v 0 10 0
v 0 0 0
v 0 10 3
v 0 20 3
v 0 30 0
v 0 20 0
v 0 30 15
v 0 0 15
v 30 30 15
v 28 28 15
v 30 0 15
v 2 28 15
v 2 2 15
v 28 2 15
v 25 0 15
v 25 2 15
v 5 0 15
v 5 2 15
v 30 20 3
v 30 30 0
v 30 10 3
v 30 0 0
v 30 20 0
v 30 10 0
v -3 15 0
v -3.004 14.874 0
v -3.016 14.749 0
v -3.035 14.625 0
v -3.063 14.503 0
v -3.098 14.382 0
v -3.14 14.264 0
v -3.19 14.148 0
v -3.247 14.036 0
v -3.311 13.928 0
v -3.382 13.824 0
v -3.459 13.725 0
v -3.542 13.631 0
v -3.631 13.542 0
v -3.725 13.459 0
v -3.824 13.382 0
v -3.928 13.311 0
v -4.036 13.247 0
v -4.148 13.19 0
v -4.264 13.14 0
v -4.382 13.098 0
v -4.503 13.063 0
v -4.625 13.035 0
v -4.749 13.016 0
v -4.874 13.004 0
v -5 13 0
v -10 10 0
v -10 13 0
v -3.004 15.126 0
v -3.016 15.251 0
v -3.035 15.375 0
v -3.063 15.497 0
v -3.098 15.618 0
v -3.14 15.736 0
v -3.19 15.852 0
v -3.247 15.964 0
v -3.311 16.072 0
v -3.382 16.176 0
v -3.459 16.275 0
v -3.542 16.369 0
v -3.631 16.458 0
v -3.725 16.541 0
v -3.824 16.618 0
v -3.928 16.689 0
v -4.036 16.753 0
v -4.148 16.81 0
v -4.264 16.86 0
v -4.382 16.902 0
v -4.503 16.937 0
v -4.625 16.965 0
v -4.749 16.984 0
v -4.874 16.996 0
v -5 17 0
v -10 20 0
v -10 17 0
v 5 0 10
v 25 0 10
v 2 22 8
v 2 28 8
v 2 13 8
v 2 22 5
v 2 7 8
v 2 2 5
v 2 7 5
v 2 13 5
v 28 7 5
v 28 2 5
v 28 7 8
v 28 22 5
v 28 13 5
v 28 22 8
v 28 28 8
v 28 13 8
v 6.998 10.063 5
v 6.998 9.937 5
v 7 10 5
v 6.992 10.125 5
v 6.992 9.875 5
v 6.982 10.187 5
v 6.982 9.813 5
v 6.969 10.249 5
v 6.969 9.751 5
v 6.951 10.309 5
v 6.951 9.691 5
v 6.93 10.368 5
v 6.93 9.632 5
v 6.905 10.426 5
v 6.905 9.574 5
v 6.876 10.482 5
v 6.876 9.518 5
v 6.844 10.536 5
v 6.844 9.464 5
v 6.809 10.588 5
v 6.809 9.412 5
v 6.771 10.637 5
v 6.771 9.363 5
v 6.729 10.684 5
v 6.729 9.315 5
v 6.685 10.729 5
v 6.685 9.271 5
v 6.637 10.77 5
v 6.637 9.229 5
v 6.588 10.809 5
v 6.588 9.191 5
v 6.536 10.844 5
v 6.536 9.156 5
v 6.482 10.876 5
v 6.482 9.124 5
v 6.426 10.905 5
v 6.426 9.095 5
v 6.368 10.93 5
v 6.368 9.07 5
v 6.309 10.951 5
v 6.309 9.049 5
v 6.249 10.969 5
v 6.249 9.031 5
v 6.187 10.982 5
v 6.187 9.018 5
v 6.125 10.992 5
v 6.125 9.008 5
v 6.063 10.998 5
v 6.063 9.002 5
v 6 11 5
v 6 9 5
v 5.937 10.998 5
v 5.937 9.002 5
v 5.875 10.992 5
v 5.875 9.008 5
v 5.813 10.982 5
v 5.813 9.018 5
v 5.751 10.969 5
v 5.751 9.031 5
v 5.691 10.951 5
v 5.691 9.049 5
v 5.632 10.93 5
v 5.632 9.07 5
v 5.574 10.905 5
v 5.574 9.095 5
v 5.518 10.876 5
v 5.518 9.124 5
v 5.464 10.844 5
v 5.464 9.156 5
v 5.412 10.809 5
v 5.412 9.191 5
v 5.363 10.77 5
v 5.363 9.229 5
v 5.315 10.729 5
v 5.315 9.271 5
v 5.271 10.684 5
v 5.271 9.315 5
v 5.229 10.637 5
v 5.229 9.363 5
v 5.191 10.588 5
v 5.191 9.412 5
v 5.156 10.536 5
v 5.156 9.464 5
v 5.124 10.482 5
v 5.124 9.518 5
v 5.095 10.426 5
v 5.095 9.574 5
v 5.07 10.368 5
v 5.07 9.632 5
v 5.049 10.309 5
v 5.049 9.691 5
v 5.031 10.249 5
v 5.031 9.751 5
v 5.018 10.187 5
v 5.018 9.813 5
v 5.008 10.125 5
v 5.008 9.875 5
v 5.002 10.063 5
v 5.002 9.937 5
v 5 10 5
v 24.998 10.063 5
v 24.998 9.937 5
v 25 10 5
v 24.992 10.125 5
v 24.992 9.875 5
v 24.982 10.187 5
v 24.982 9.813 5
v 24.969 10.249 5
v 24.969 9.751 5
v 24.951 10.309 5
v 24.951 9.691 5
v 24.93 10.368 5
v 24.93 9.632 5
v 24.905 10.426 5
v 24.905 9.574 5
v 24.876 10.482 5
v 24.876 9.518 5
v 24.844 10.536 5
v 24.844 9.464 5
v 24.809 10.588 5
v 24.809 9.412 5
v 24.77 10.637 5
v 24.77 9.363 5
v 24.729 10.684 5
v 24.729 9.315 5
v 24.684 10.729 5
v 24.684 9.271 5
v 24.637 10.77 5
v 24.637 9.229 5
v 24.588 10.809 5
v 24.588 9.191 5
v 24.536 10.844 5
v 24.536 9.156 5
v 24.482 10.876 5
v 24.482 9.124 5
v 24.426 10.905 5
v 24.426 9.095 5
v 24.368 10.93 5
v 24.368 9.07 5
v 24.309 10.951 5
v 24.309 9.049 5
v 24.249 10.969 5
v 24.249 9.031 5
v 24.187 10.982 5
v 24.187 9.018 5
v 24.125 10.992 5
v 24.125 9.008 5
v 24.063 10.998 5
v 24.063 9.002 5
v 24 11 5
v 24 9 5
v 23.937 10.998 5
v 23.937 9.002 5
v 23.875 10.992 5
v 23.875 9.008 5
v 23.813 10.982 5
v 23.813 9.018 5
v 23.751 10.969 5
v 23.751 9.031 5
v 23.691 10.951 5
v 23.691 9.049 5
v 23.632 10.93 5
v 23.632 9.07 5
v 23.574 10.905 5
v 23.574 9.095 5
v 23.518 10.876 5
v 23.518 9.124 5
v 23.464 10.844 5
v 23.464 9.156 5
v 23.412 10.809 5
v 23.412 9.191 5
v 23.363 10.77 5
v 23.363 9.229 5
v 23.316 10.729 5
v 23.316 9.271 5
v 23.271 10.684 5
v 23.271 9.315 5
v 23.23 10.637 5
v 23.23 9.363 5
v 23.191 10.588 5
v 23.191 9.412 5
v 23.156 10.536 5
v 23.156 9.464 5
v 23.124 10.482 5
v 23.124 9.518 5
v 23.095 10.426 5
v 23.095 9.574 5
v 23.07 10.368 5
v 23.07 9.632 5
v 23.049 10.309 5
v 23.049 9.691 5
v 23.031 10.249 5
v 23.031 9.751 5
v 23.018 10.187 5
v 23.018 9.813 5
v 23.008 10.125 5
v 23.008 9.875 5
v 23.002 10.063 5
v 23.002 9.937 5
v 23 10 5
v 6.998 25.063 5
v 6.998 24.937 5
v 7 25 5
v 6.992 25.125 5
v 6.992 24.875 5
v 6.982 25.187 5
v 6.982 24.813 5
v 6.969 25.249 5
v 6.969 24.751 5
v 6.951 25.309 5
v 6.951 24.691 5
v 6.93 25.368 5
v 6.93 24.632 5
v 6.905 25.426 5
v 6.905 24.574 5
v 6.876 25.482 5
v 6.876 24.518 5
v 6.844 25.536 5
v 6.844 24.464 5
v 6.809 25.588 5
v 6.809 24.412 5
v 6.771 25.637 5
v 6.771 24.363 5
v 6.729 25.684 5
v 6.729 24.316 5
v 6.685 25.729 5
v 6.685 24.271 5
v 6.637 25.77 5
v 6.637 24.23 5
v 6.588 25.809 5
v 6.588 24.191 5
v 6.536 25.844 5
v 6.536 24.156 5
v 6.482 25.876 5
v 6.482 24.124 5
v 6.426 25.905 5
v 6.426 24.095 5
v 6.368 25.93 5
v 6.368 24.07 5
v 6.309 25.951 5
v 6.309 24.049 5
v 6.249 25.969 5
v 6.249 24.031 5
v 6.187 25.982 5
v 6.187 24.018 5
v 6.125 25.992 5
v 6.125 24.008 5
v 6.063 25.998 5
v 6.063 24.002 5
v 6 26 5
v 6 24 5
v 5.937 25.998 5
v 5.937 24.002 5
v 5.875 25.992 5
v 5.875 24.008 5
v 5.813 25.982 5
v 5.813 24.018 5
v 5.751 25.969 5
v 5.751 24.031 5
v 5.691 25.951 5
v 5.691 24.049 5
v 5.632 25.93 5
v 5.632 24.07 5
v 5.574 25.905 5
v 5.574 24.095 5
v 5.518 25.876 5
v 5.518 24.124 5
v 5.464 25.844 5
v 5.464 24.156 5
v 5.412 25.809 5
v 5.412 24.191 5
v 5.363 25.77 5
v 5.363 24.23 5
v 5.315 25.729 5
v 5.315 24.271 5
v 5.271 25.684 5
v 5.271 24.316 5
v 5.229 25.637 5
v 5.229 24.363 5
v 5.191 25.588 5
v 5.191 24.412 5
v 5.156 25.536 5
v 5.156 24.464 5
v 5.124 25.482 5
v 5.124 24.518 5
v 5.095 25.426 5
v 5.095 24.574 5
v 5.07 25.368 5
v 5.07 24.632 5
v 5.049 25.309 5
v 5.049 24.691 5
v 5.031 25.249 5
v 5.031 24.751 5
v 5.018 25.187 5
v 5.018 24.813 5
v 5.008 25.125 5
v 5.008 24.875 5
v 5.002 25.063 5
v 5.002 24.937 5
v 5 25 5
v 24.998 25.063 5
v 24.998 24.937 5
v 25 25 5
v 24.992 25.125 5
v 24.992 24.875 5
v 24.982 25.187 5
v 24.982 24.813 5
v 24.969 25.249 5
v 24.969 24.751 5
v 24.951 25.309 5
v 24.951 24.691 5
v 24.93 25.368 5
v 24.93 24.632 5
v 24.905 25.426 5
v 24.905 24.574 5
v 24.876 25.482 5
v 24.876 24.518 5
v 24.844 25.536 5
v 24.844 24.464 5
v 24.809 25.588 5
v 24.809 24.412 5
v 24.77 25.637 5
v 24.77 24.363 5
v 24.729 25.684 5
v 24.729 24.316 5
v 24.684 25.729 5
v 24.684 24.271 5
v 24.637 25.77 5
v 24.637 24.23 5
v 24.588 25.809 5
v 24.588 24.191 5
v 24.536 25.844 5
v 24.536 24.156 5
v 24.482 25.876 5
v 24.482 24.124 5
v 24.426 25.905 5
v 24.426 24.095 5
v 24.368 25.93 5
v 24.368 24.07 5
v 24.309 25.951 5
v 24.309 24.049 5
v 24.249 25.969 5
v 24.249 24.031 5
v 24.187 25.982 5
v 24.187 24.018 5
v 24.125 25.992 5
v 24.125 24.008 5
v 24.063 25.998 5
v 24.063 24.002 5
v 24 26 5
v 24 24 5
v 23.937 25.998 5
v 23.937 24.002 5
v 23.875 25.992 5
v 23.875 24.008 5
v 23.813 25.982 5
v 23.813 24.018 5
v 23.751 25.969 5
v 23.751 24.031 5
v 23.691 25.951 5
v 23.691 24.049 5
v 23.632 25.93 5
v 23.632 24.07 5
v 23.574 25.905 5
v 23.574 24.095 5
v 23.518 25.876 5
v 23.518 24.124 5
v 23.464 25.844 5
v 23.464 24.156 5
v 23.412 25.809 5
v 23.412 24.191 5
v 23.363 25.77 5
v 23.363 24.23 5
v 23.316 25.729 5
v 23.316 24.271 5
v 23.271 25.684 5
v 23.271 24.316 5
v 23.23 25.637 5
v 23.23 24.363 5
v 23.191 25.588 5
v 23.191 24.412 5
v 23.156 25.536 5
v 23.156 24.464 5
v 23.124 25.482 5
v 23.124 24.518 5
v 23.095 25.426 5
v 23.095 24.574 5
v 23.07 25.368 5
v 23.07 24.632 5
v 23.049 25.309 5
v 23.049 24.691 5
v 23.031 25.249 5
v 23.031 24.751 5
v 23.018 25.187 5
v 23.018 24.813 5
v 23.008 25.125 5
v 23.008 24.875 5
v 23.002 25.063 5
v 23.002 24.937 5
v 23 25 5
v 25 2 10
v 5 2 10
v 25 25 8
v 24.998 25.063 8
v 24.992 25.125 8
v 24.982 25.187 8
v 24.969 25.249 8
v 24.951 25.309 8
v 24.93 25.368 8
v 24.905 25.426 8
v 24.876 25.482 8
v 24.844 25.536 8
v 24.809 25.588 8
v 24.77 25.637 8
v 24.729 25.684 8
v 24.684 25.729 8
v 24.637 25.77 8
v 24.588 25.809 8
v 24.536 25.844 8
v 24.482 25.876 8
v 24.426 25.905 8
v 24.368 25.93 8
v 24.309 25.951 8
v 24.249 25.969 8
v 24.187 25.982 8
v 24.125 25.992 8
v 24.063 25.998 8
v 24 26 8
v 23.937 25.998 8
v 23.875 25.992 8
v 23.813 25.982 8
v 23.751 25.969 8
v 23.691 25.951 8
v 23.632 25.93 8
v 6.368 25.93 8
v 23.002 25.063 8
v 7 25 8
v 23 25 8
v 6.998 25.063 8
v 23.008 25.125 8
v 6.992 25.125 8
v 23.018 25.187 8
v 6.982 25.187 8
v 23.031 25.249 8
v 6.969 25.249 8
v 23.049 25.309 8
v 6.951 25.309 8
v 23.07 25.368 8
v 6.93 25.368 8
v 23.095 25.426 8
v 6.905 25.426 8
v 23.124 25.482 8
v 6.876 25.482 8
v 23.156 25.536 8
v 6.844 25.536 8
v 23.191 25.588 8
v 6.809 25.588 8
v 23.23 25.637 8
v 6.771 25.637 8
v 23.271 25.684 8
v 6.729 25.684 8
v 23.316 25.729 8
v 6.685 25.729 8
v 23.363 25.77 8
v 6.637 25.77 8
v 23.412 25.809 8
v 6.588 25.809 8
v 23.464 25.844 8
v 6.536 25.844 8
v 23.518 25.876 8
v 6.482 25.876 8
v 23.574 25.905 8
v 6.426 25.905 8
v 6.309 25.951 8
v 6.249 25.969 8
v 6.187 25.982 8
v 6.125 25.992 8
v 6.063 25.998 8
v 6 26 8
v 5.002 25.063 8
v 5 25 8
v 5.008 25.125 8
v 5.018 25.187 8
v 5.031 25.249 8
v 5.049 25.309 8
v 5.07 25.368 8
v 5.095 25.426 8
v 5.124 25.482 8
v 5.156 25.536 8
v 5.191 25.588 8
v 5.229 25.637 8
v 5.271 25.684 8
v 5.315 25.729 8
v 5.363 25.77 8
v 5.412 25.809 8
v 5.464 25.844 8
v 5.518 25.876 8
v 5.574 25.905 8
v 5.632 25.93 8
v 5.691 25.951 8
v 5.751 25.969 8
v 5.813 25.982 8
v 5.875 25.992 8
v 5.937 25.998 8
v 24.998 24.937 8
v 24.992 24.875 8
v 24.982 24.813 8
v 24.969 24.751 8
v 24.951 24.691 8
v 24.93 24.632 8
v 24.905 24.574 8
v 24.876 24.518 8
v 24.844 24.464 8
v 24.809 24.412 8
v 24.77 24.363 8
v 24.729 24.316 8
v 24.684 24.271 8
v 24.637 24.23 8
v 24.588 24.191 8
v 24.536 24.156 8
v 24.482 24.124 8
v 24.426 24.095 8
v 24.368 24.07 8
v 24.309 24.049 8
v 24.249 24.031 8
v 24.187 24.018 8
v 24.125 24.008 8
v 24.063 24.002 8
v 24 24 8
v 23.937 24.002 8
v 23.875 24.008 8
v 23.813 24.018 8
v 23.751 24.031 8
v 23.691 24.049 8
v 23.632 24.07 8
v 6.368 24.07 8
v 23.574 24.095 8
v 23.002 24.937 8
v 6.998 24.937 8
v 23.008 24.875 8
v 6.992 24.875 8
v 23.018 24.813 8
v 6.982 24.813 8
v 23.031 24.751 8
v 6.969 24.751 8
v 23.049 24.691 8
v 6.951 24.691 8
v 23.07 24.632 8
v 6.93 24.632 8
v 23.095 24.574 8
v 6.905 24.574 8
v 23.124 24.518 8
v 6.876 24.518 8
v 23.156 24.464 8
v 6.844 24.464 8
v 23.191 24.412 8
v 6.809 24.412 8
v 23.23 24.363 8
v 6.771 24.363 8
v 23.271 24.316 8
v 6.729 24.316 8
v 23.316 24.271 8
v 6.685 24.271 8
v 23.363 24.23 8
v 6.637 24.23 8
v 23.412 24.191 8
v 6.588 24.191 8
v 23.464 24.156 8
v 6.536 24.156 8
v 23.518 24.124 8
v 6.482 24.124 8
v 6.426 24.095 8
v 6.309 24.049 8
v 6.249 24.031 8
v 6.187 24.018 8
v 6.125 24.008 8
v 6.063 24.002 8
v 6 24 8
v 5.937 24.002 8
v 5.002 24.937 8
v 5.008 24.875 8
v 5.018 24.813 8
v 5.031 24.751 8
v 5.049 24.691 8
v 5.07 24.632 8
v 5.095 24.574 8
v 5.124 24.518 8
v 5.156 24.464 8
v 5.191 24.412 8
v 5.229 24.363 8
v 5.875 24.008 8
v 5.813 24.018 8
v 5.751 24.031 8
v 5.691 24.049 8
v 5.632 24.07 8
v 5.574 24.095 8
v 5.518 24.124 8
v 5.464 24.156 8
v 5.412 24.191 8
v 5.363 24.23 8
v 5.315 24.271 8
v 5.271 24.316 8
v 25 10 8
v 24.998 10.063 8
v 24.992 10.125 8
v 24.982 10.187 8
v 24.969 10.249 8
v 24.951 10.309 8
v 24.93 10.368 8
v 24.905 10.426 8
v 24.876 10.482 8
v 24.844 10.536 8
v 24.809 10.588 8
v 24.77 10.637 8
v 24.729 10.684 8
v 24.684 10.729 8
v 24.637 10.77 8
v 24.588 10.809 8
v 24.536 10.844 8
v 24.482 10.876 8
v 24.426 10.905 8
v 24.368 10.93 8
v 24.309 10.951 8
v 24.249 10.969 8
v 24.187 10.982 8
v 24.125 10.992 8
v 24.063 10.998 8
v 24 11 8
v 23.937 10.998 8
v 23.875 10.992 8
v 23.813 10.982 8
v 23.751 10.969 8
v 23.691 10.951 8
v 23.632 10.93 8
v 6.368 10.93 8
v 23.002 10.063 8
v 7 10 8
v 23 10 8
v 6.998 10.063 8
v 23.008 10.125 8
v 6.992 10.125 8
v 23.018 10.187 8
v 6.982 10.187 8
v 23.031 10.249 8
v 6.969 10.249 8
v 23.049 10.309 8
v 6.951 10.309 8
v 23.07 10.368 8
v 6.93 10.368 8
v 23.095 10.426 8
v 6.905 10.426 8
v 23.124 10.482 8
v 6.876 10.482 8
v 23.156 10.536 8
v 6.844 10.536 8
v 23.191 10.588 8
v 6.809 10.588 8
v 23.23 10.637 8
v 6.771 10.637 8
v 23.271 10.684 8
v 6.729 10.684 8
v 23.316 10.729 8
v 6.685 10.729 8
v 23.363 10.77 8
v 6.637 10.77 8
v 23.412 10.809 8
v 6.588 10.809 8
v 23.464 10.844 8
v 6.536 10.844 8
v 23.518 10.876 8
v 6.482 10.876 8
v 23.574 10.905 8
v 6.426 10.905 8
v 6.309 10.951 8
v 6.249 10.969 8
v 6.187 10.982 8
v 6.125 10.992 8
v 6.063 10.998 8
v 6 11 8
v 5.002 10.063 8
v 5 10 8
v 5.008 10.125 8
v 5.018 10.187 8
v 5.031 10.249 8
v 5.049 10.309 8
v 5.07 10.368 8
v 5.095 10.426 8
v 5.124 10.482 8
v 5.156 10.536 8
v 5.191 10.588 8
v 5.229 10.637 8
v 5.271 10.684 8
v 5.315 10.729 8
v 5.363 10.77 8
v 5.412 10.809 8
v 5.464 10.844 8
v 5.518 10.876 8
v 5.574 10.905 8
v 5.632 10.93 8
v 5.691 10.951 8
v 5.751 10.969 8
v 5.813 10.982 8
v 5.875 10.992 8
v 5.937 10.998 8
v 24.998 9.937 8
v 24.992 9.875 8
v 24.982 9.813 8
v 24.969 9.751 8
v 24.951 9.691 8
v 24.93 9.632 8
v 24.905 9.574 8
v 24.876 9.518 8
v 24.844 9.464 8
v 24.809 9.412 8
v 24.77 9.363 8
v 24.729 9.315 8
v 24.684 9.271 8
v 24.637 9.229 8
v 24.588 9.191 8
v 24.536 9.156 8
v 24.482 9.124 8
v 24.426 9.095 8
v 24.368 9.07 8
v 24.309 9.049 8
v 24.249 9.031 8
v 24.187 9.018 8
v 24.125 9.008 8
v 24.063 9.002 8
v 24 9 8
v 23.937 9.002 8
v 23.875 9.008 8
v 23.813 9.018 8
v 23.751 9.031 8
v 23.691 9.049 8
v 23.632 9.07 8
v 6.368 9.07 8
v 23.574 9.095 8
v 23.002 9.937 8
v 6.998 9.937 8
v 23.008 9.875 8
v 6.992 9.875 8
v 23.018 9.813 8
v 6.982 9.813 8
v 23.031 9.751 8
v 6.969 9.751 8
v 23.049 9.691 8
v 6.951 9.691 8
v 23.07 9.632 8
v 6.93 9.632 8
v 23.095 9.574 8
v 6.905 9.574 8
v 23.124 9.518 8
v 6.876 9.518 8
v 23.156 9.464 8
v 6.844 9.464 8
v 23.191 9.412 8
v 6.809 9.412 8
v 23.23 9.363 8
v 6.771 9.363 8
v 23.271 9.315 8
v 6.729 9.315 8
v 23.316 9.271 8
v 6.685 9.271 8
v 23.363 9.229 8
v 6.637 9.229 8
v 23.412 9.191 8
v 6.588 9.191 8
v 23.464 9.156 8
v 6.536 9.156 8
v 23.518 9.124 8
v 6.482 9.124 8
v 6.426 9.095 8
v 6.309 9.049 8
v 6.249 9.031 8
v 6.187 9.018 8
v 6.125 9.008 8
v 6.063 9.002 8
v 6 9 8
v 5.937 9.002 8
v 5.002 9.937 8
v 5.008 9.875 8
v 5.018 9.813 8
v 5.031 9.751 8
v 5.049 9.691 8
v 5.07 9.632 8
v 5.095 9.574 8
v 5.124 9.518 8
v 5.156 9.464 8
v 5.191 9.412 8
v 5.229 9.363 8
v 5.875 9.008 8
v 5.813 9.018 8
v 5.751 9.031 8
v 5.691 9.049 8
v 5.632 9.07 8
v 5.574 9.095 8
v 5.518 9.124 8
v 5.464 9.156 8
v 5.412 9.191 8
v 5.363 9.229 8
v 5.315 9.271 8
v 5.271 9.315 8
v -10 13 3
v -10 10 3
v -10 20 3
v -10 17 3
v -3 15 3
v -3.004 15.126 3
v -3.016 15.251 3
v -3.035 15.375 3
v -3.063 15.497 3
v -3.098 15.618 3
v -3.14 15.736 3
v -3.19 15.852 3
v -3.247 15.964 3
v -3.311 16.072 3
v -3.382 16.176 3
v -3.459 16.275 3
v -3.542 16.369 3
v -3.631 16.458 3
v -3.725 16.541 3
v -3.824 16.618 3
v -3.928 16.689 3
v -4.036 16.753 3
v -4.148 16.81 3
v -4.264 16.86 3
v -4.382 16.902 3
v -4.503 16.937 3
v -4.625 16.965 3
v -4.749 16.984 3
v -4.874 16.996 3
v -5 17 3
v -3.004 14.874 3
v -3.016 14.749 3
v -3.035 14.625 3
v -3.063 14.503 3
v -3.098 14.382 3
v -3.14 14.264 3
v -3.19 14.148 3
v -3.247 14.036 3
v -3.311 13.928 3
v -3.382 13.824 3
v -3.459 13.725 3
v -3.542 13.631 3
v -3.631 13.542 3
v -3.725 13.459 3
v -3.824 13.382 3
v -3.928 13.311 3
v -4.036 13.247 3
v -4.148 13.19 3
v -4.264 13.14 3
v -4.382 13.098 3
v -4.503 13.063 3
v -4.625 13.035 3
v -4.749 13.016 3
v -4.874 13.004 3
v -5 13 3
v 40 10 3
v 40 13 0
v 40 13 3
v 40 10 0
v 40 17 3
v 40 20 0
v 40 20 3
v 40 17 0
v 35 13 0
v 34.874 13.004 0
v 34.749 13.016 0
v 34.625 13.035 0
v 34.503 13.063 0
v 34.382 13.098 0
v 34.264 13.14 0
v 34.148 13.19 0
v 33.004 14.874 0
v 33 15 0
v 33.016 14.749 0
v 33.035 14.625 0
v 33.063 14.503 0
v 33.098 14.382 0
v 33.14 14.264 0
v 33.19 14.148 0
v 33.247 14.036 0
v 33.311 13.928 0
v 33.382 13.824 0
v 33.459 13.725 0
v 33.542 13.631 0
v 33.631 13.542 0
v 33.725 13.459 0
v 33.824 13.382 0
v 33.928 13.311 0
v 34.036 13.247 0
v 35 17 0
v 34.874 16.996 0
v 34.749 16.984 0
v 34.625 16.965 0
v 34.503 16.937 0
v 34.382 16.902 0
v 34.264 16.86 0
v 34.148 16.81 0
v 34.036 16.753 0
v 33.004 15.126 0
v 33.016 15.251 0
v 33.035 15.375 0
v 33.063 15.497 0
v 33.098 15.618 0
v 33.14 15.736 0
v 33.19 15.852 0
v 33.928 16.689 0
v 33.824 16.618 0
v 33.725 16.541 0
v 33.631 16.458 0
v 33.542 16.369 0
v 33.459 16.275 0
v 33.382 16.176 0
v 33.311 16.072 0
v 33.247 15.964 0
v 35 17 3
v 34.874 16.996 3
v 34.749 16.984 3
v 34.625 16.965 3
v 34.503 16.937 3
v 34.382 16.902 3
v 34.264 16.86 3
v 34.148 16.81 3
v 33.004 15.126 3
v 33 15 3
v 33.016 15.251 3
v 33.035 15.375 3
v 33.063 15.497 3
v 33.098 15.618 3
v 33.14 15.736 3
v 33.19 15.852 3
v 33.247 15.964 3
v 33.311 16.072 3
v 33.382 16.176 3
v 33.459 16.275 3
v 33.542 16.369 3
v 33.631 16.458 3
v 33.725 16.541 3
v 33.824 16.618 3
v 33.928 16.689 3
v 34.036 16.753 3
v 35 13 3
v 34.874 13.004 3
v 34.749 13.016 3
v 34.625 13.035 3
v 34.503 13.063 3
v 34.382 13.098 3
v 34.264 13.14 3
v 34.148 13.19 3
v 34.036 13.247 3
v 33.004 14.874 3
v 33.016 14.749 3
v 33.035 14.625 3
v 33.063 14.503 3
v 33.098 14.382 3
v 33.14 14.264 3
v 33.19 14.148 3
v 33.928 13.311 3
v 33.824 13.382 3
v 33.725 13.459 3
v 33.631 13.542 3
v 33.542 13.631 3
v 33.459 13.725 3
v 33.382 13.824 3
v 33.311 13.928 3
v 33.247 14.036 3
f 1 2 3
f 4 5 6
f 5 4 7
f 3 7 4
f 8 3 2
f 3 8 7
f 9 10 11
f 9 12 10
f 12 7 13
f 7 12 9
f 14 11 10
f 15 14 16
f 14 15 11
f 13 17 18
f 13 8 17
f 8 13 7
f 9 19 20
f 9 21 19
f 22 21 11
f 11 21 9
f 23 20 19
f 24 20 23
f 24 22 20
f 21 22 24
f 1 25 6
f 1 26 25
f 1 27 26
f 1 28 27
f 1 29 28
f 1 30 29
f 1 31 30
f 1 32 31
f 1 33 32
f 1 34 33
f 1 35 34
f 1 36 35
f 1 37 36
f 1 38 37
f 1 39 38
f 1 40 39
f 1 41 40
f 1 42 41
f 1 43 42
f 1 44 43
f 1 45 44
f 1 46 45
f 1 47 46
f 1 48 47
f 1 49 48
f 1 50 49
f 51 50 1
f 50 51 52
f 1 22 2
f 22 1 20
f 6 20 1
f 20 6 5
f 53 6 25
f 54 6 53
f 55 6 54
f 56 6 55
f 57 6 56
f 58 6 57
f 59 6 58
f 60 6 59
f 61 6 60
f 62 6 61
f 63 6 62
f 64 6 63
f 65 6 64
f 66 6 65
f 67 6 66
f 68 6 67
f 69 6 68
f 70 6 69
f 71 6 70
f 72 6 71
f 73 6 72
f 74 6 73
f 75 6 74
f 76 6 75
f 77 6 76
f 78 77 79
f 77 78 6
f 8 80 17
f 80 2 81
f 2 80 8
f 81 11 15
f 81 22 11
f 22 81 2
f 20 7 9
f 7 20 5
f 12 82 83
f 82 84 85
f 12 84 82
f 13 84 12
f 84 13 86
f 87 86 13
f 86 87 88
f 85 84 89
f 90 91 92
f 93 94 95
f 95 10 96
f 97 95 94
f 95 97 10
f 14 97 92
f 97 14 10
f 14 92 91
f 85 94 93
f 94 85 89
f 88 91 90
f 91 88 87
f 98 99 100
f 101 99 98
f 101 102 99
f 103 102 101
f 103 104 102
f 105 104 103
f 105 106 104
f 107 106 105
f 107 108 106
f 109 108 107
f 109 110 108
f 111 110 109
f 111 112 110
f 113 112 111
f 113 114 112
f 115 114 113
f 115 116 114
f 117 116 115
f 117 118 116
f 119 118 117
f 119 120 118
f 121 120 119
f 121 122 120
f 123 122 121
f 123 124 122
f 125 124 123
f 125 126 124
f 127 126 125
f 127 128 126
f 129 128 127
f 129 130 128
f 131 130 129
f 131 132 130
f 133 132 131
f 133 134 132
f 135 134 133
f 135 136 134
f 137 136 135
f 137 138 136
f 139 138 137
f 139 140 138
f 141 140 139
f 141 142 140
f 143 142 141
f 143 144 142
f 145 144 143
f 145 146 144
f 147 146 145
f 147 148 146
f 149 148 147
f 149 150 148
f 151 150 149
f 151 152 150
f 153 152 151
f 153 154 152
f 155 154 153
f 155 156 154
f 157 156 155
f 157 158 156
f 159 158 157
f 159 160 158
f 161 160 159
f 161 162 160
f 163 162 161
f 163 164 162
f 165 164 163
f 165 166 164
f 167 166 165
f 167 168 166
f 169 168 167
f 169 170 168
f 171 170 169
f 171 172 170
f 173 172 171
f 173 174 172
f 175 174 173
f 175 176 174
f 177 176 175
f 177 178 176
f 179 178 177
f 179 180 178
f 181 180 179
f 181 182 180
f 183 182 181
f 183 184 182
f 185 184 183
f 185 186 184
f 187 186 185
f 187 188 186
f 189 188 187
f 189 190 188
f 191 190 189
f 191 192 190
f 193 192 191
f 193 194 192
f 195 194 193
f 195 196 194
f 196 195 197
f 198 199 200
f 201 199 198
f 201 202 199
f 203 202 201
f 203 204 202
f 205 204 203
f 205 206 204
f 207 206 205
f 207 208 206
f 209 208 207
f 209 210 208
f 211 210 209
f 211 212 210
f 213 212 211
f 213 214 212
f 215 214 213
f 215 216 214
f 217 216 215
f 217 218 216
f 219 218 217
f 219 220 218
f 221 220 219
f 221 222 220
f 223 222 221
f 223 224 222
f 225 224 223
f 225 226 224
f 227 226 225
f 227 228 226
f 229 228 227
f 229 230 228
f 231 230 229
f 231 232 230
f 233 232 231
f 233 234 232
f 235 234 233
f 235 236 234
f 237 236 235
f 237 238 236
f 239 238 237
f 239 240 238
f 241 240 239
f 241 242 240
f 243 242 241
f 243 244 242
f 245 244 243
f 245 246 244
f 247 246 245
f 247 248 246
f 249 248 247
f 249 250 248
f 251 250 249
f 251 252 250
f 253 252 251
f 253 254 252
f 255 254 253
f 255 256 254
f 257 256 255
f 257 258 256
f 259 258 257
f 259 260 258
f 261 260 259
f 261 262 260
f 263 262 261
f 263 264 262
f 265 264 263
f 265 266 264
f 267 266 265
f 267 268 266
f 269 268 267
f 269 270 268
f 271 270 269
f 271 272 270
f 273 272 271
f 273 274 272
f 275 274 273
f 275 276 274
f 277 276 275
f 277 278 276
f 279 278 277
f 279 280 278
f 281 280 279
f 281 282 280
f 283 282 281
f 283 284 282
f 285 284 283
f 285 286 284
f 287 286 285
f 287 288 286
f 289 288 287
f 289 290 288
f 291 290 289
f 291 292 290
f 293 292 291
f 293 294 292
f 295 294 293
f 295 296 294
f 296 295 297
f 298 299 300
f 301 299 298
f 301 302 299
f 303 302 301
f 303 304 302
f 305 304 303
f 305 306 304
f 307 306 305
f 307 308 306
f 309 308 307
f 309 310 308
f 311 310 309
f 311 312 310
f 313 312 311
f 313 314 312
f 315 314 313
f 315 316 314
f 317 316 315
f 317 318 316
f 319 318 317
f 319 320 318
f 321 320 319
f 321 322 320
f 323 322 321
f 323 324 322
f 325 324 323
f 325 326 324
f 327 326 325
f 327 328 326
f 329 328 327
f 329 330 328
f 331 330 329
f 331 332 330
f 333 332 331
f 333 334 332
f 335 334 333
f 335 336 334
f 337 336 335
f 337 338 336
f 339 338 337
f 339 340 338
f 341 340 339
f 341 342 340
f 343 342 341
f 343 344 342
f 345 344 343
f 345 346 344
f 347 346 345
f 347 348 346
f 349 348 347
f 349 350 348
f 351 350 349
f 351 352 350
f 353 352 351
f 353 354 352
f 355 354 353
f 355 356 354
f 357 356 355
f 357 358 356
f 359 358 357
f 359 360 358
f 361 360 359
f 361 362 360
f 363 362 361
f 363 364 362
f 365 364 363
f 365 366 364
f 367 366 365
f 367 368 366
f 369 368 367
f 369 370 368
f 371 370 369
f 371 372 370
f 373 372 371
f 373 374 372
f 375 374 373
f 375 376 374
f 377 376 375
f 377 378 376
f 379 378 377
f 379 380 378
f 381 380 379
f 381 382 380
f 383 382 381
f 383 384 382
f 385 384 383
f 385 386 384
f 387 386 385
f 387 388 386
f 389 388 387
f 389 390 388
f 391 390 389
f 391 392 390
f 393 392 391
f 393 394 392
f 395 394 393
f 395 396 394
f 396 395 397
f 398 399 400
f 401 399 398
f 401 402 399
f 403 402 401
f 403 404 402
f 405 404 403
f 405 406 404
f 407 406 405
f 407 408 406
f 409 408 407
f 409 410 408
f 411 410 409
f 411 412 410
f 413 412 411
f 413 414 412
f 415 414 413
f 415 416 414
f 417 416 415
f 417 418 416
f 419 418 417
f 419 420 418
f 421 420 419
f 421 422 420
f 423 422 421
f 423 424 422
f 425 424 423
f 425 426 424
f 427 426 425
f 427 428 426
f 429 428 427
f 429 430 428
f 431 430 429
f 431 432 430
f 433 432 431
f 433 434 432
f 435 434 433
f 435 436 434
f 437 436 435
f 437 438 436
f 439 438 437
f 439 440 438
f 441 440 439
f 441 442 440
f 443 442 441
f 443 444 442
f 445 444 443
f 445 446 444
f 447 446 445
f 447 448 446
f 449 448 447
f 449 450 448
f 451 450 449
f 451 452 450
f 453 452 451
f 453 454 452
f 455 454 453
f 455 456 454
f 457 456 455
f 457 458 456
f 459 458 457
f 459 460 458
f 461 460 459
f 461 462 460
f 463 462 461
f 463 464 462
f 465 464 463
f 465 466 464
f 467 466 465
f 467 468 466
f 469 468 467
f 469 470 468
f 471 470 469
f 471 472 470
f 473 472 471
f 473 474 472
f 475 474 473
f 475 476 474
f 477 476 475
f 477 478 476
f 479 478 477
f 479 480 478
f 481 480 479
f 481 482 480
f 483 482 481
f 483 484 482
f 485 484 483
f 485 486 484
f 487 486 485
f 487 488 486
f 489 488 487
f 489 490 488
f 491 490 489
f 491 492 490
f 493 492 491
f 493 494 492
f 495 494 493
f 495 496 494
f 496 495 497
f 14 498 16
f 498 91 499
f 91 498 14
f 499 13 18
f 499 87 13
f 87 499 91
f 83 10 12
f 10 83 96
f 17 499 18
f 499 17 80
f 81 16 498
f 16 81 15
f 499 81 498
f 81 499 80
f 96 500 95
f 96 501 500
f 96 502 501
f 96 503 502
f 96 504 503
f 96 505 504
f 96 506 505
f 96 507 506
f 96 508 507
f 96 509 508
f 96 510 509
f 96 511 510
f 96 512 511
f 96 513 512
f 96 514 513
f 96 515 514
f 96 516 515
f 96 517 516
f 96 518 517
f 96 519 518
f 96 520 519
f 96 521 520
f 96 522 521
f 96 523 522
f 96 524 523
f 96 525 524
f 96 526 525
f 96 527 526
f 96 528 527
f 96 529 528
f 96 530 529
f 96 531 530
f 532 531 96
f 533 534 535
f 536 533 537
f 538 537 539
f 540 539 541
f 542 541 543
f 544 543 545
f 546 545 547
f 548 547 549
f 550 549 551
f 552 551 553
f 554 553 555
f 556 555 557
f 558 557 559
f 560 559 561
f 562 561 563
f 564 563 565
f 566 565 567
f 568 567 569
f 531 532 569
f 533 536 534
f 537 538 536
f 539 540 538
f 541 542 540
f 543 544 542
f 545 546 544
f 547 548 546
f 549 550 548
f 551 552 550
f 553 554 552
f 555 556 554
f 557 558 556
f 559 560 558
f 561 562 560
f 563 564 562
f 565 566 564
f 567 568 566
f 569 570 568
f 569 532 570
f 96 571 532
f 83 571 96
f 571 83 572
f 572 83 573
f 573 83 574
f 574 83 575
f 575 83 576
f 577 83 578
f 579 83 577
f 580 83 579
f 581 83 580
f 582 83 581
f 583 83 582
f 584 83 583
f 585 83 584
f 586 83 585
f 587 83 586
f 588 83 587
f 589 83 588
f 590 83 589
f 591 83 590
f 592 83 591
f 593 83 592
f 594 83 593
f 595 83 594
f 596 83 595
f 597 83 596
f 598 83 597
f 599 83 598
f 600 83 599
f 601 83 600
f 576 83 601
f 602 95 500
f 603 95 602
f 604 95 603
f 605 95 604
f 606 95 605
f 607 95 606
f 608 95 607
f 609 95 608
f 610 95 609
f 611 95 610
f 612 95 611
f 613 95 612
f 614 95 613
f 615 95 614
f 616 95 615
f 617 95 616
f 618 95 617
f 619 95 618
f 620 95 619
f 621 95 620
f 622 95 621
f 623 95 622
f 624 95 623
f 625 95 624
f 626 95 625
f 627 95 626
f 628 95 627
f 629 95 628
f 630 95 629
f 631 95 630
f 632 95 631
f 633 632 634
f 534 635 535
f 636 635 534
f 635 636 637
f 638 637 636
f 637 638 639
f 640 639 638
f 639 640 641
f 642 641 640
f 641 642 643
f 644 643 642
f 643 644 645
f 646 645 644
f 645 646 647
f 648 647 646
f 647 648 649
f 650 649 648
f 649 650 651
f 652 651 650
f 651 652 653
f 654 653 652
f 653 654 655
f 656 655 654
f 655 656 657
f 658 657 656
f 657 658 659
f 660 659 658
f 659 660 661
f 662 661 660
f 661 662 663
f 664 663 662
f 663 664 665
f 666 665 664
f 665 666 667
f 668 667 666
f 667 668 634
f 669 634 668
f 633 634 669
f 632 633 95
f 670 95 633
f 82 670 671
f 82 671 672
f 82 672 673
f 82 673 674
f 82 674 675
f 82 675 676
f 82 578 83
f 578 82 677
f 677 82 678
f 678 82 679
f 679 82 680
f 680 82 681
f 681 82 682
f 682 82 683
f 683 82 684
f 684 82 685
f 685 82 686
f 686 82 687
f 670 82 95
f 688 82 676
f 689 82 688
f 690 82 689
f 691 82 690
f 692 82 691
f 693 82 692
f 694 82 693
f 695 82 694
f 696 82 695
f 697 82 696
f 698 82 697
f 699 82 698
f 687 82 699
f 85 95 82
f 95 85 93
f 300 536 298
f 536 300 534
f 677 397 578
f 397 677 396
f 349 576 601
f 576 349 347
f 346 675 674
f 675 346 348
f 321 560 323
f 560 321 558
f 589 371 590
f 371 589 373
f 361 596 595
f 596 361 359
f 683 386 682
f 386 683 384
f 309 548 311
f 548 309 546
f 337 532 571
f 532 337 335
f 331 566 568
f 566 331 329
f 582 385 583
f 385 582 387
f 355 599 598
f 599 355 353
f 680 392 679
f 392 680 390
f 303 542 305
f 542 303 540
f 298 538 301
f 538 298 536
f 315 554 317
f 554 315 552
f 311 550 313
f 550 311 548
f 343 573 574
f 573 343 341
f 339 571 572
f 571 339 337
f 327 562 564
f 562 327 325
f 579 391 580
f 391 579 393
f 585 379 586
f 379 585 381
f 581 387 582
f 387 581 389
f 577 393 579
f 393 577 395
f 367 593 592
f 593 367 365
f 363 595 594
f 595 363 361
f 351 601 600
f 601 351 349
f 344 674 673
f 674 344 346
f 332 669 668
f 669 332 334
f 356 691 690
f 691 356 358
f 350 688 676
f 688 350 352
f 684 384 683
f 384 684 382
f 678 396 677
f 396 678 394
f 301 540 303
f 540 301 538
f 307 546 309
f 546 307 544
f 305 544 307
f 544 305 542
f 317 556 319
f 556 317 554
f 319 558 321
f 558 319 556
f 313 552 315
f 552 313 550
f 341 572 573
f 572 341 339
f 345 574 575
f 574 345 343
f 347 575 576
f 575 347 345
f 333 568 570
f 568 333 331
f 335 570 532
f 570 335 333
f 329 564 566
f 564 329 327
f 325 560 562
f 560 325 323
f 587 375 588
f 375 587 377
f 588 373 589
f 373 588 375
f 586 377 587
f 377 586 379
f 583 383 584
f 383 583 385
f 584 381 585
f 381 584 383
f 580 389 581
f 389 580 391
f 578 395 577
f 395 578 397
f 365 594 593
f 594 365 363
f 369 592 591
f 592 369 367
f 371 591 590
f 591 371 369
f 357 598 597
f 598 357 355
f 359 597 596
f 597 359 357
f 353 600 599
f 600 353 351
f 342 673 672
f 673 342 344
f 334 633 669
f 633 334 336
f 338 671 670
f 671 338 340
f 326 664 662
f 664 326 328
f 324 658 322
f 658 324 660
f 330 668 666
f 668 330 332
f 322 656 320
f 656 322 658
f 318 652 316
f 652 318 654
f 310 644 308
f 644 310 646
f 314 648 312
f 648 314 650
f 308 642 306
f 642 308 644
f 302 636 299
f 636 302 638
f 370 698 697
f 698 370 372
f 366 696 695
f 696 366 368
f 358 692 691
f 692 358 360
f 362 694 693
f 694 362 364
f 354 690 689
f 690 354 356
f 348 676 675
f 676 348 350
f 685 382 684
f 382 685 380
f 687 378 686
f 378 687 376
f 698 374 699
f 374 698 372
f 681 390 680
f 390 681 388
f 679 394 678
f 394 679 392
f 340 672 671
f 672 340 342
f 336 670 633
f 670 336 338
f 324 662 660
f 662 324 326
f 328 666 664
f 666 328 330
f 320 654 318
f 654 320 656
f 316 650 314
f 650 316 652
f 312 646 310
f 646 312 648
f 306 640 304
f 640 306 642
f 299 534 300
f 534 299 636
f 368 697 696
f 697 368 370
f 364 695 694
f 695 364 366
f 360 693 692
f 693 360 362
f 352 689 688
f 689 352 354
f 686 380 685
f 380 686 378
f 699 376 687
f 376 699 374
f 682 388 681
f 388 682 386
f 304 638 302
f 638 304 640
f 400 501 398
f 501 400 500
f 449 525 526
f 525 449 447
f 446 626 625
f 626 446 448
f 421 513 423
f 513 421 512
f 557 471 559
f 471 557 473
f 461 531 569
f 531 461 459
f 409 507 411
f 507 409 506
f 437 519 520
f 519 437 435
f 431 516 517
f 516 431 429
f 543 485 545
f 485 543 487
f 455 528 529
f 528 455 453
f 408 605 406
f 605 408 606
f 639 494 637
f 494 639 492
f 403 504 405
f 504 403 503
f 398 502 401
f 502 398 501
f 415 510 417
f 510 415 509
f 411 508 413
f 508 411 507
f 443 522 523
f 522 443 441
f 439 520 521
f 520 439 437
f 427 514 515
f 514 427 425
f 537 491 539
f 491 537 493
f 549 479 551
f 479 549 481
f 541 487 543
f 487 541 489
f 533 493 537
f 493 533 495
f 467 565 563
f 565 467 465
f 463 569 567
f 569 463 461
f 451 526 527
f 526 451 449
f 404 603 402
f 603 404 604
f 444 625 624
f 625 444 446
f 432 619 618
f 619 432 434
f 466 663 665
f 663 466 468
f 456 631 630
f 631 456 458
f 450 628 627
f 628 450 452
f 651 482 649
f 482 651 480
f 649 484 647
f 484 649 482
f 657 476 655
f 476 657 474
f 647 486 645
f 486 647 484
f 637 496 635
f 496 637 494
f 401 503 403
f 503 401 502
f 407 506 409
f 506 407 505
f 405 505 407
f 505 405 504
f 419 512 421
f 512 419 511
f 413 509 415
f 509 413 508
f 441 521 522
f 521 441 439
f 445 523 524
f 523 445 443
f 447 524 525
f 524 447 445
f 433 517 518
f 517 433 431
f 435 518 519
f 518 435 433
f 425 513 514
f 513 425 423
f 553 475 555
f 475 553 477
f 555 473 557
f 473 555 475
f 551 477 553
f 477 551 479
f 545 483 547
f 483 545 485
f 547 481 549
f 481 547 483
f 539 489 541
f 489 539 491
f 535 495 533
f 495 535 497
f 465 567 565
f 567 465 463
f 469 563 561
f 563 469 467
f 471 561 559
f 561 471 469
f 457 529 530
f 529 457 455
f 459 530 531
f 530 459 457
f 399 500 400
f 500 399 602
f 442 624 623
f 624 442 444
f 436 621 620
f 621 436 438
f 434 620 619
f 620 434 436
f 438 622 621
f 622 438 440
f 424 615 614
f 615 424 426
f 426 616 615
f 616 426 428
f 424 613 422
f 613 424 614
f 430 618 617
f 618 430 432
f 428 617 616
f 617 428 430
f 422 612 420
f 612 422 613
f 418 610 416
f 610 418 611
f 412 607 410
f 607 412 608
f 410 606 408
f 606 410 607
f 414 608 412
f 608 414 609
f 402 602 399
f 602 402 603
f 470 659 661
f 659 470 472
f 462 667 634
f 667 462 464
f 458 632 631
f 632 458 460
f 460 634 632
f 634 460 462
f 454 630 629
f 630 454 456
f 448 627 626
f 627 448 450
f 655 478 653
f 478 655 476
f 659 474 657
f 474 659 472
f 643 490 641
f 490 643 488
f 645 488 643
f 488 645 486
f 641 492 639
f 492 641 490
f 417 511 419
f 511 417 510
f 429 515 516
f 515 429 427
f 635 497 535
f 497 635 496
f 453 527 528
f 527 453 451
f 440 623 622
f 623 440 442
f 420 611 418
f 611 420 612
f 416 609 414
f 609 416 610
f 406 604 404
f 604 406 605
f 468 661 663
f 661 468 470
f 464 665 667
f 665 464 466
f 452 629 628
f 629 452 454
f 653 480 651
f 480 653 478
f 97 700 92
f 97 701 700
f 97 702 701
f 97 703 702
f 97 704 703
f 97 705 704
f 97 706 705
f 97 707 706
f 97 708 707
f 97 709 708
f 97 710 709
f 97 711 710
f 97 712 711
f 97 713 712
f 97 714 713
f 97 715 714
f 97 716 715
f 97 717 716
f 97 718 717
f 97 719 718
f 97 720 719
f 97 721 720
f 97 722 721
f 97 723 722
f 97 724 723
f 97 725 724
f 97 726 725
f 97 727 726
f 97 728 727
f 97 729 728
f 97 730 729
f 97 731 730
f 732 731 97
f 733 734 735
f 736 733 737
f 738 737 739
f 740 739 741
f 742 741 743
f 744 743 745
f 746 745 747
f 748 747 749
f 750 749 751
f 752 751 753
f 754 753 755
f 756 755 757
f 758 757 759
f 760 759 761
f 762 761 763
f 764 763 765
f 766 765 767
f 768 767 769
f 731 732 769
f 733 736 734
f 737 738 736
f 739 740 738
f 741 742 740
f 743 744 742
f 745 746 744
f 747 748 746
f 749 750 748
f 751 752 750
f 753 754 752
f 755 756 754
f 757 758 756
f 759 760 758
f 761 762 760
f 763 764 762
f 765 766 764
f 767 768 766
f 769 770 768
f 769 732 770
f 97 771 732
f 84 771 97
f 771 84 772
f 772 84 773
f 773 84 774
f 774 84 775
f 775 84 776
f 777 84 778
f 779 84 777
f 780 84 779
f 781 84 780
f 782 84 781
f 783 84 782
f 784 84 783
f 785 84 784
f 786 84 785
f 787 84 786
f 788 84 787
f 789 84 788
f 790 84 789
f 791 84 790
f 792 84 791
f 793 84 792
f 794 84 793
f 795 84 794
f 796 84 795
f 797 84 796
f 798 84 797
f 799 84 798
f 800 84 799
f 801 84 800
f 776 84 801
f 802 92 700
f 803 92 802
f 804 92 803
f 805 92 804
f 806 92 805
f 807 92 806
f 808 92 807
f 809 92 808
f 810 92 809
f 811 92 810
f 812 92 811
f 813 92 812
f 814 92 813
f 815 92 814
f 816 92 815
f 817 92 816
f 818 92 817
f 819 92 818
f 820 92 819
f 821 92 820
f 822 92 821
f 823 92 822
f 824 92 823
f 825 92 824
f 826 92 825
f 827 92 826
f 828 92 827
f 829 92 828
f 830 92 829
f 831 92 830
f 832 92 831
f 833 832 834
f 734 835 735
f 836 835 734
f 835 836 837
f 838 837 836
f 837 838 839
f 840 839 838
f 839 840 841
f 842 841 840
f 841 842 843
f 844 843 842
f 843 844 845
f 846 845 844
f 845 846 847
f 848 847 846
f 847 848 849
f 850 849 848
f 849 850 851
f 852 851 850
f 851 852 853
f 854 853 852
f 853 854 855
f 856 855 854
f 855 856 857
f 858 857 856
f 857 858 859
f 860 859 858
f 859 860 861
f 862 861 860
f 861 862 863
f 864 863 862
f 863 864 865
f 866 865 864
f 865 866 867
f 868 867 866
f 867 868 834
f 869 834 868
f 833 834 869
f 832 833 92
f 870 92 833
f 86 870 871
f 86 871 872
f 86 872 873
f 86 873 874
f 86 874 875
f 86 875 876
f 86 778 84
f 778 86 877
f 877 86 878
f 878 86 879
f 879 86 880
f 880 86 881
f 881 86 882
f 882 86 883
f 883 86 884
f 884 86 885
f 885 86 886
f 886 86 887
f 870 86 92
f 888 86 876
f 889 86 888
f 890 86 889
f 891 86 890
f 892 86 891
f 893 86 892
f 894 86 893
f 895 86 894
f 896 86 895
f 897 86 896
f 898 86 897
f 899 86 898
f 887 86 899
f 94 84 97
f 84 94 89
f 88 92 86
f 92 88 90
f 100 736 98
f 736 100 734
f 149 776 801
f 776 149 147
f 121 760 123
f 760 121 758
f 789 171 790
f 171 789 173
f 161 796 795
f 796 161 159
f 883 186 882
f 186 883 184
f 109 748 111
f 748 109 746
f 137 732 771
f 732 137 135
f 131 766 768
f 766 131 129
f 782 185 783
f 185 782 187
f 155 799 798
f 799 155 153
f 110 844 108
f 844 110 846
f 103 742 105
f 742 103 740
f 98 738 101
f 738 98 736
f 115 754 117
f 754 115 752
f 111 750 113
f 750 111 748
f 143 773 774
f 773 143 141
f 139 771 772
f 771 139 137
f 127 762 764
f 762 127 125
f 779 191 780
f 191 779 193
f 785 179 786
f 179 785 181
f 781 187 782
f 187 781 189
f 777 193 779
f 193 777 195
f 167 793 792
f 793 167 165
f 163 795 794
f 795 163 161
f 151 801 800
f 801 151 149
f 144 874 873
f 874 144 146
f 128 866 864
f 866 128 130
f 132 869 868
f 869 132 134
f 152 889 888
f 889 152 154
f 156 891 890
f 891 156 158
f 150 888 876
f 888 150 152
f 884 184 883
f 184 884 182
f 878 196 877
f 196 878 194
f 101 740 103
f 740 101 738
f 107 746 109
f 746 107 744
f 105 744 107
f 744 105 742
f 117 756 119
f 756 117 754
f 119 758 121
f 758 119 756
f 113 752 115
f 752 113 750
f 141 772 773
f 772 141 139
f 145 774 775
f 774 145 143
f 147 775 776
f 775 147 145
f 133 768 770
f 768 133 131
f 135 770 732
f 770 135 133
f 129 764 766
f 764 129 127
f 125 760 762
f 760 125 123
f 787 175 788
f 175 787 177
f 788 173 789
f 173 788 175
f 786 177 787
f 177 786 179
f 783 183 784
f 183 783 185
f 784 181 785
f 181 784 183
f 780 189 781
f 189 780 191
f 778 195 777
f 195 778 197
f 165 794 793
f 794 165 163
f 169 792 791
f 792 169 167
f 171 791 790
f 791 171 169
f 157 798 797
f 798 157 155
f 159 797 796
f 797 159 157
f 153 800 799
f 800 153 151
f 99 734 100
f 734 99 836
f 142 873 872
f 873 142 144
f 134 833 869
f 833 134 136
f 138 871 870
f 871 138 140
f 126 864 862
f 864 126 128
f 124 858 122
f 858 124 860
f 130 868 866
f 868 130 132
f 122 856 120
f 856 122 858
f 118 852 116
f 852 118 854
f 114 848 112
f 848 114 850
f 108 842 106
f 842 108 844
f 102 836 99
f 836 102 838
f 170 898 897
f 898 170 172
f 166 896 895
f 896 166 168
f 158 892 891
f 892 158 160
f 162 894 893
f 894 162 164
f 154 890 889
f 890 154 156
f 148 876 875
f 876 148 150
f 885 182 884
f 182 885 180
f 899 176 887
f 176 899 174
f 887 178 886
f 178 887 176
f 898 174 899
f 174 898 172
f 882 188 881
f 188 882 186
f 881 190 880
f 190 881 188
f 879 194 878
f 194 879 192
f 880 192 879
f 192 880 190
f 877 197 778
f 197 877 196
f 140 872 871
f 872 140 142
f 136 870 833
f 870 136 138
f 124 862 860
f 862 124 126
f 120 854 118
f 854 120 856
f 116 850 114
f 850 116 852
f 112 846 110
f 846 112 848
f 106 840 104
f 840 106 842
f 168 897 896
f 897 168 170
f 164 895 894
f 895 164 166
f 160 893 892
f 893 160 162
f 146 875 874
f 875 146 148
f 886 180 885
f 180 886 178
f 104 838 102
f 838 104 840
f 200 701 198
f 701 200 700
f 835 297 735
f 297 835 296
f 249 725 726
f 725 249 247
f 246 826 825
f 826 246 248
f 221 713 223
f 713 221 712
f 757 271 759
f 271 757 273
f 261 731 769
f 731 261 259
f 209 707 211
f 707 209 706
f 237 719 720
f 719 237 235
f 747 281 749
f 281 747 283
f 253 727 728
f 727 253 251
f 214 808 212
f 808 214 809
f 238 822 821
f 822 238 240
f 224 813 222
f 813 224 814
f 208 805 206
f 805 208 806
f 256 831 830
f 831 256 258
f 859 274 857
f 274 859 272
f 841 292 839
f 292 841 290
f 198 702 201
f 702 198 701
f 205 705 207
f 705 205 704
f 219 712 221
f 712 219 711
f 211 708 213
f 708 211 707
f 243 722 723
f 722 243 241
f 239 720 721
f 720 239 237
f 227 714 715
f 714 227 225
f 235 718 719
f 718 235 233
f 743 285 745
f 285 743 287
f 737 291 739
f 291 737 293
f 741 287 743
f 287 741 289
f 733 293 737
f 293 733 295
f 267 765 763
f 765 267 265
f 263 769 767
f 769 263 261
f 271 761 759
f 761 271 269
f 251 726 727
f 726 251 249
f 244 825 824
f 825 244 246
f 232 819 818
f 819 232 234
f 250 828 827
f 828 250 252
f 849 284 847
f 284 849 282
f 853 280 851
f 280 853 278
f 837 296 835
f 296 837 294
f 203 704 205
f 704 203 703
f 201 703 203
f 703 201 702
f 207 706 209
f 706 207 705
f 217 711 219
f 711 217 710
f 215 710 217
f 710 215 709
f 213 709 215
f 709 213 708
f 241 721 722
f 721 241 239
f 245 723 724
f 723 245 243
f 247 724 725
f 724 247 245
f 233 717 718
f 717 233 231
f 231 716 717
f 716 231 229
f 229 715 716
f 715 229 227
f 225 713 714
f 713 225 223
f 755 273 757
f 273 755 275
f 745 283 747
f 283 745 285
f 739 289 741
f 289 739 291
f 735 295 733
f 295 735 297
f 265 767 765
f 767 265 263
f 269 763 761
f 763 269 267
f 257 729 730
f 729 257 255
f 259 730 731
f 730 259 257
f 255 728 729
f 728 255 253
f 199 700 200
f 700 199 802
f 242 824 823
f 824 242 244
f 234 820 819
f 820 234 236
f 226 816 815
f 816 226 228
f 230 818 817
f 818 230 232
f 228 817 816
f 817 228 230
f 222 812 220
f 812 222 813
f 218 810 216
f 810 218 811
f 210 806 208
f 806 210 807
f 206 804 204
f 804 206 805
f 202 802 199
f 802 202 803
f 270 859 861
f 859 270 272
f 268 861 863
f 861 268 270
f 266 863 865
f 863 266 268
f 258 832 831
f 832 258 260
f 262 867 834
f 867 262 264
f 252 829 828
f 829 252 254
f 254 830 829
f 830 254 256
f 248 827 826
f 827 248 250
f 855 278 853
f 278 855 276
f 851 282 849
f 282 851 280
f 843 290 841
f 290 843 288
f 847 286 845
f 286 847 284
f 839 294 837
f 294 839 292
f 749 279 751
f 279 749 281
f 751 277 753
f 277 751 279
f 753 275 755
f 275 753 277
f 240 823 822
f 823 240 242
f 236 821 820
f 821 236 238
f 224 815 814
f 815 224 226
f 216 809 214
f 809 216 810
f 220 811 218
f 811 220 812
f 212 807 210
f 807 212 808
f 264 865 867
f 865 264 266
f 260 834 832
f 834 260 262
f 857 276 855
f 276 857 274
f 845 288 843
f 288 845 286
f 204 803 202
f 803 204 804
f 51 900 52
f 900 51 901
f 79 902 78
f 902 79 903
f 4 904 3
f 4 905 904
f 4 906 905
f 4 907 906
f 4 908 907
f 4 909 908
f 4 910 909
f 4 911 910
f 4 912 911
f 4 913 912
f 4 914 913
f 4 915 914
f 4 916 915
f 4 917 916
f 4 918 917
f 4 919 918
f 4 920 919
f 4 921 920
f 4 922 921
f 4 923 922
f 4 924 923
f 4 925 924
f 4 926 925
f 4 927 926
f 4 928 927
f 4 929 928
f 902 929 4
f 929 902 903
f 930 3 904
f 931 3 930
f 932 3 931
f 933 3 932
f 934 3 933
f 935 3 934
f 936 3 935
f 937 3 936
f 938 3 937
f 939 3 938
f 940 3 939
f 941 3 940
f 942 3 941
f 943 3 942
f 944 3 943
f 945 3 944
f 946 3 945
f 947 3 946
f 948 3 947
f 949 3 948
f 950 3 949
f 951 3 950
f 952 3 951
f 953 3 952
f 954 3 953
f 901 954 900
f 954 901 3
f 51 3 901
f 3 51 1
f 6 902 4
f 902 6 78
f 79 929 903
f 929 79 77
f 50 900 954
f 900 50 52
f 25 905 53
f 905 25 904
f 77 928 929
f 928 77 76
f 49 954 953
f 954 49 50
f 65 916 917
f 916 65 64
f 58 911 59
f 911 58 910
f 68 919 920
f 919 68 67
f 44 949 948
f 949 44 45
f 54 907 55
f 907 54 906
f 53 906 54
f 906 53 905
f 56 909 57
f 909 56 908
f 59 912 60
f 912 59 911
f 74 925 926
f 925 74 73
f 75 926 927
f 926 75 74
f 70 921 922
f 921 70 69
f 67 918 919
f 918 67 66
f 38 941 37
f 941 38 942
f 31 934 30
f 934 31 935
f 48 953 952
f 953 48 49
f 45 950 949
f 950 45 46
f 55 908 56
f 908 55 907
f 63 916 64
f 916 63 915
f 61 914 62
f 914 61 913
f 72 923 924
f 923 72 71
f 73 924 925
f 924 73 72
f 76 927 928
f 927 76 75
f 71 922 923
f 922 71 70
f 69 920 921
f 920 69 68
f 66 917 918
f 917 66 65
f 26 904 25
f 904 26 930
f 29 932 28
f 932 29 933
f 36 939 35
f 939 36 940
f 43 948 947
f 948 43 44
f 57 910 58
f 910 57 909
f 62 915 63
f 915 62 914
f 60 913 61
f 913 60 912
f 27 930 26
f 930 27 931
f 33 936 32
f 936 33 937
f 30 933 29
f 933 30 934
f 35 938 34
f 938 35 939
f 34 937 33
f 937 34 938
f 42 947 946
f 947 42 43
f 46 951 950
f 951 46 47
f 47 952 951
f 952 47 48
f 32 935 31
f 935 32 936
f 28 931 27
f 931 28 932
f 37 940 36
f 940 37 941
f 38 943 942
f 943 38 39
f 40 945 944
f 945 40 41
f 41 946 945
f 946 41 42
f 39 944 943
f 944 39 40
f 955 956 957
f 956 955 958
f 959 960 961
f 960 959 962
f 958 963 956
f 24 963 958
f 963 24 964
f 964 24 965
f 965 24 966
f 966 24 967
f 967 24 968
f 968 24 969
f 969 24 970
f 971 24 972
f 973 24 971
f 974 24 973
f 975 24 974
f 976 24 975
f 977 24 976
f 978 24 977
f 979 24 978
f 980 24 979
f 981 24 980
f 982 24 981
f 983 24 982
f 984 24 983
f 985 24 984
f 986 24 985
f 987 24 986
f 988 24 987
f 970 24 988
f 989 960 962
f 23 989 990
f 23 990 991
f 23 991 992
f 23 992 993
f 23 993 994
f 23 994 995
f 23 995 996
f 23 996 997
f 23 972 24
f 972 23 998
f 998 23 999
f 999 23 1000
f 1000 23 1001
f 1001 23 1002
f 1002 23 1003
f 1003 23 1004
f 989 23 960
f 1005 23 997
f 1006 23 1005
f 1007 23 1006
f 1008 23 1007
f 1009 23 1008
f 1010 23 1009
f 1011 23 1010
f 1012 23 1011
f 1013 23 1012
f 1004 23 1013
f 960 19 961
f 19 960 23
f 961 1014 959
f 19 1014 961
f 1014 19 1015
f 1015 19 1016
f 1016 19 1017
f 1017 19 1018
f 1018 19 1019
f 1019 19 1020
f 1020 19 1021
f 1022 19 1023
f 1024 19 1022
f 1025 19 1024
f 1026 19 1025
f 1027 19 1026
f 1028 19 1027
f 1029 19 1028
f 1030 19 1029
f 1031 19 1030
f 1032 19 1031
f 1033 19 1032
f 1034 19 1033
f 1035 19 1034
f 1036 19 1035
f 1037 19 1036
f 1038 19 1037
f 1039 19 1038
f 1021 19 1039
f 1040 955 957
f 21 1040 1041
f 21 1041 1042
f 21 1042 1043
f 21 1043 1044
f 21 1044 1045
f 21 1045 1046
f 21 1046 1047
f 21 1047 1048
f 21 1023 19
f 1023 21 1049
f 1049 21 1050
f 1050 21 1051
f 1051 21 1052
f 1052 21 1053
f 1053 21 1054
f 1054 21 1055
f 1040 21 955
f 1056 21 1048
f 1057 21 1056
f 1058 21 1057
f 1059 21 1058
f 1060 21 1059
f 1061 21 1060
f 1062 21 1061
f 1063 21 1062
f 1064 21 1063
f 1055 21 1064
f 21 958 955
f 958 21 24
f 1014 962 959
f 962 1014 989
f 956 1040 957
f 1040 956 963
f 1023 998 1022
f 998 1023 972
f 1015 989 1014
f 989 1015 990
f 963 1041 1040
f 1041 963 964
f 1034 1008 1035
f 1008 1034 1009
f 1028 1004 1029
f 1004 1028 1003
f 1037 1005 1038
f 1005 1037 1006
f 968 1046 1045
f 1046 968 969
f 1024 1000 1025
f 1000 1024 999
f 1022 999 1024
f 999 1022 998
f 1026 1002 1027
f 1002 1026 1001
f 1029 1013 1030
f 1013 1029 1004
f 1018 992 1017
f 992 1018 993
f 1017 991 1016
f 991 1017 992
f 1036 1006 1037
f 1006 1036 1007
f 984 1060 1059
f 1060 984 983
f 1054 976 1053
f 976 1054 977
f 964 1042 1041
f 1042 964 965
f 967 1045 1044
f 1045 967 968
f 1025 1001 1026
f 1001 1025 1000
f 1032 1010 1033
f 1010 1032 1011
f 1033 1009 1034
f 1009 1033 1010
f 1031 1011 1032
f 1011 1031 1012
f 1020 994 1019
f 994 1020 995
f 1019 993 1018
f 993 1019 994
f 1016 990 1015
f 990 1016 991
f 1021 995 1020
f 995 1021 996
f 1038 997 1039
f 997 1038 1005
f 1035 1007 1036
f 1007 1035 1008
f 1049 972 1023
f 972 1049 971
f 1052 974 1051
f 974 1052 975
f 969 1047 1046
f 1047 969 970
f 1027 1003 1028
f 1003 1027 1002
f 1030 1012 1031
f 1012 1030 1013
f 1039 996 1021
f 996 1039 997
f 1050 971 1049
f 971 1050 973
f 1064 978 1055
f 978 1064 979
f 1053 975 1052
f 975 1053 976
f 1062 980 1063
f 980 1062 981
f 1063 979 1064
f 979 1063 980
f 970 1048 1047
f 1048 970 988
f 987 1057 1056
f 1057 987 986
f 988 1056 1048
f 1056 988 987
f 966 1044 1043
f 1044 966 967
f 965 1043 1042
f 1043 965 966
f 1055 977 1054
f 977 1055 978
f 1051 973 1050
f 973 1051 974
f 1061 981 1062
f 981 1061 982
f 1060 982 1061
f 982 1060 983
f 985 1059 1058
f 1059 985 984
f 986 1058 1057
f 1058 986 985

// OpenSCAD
$fn = 100;
// maten
//
// 25 * 25 mm
// 
union() {
    case();
    pw(-10,10,0);
    rotate([0,180,0]) {
        pw(-40,10,-3);
    }
}
module case() {
    union() {    
        difference () {
            cube([30,30,15]);
            translate([2,2,5]) { 
                cube([26,26,18]);
            }
            translate([5,-1,10]) {
                cube([20,4,15]);
            }
        }
        difference () {
            translate([2,22,5]) {
                cube ([26,6,3]);
            }
            translate([6,25,5]) {
                cylinder(r=1,h=10, center=false);
            }
            translate([24,25,5]) {
                cylinder(r=1,h=10, center=false);
            }
        }
        difference(){
            translate([2,7,5]) {
                cube ([26,6,3]);
            }
            translate([6,10,5]) {
                cylinder(r=1,h=10, center=false);
            }
            translate([24,10,5]) {
                cylinder(r=1,h=10, center=false);
            }   
        }
    }
}
module pw (x,y,z) {
    difference () {
        translate([x,y,z]) 
        cube([10,10,3]);
        translate ([x-1,y+3,z-1])
        cube([6,4,5]);
        translate([x+5,y+5,z-2])
        cylinder(r=2,h=10, center=false);
    }
}
